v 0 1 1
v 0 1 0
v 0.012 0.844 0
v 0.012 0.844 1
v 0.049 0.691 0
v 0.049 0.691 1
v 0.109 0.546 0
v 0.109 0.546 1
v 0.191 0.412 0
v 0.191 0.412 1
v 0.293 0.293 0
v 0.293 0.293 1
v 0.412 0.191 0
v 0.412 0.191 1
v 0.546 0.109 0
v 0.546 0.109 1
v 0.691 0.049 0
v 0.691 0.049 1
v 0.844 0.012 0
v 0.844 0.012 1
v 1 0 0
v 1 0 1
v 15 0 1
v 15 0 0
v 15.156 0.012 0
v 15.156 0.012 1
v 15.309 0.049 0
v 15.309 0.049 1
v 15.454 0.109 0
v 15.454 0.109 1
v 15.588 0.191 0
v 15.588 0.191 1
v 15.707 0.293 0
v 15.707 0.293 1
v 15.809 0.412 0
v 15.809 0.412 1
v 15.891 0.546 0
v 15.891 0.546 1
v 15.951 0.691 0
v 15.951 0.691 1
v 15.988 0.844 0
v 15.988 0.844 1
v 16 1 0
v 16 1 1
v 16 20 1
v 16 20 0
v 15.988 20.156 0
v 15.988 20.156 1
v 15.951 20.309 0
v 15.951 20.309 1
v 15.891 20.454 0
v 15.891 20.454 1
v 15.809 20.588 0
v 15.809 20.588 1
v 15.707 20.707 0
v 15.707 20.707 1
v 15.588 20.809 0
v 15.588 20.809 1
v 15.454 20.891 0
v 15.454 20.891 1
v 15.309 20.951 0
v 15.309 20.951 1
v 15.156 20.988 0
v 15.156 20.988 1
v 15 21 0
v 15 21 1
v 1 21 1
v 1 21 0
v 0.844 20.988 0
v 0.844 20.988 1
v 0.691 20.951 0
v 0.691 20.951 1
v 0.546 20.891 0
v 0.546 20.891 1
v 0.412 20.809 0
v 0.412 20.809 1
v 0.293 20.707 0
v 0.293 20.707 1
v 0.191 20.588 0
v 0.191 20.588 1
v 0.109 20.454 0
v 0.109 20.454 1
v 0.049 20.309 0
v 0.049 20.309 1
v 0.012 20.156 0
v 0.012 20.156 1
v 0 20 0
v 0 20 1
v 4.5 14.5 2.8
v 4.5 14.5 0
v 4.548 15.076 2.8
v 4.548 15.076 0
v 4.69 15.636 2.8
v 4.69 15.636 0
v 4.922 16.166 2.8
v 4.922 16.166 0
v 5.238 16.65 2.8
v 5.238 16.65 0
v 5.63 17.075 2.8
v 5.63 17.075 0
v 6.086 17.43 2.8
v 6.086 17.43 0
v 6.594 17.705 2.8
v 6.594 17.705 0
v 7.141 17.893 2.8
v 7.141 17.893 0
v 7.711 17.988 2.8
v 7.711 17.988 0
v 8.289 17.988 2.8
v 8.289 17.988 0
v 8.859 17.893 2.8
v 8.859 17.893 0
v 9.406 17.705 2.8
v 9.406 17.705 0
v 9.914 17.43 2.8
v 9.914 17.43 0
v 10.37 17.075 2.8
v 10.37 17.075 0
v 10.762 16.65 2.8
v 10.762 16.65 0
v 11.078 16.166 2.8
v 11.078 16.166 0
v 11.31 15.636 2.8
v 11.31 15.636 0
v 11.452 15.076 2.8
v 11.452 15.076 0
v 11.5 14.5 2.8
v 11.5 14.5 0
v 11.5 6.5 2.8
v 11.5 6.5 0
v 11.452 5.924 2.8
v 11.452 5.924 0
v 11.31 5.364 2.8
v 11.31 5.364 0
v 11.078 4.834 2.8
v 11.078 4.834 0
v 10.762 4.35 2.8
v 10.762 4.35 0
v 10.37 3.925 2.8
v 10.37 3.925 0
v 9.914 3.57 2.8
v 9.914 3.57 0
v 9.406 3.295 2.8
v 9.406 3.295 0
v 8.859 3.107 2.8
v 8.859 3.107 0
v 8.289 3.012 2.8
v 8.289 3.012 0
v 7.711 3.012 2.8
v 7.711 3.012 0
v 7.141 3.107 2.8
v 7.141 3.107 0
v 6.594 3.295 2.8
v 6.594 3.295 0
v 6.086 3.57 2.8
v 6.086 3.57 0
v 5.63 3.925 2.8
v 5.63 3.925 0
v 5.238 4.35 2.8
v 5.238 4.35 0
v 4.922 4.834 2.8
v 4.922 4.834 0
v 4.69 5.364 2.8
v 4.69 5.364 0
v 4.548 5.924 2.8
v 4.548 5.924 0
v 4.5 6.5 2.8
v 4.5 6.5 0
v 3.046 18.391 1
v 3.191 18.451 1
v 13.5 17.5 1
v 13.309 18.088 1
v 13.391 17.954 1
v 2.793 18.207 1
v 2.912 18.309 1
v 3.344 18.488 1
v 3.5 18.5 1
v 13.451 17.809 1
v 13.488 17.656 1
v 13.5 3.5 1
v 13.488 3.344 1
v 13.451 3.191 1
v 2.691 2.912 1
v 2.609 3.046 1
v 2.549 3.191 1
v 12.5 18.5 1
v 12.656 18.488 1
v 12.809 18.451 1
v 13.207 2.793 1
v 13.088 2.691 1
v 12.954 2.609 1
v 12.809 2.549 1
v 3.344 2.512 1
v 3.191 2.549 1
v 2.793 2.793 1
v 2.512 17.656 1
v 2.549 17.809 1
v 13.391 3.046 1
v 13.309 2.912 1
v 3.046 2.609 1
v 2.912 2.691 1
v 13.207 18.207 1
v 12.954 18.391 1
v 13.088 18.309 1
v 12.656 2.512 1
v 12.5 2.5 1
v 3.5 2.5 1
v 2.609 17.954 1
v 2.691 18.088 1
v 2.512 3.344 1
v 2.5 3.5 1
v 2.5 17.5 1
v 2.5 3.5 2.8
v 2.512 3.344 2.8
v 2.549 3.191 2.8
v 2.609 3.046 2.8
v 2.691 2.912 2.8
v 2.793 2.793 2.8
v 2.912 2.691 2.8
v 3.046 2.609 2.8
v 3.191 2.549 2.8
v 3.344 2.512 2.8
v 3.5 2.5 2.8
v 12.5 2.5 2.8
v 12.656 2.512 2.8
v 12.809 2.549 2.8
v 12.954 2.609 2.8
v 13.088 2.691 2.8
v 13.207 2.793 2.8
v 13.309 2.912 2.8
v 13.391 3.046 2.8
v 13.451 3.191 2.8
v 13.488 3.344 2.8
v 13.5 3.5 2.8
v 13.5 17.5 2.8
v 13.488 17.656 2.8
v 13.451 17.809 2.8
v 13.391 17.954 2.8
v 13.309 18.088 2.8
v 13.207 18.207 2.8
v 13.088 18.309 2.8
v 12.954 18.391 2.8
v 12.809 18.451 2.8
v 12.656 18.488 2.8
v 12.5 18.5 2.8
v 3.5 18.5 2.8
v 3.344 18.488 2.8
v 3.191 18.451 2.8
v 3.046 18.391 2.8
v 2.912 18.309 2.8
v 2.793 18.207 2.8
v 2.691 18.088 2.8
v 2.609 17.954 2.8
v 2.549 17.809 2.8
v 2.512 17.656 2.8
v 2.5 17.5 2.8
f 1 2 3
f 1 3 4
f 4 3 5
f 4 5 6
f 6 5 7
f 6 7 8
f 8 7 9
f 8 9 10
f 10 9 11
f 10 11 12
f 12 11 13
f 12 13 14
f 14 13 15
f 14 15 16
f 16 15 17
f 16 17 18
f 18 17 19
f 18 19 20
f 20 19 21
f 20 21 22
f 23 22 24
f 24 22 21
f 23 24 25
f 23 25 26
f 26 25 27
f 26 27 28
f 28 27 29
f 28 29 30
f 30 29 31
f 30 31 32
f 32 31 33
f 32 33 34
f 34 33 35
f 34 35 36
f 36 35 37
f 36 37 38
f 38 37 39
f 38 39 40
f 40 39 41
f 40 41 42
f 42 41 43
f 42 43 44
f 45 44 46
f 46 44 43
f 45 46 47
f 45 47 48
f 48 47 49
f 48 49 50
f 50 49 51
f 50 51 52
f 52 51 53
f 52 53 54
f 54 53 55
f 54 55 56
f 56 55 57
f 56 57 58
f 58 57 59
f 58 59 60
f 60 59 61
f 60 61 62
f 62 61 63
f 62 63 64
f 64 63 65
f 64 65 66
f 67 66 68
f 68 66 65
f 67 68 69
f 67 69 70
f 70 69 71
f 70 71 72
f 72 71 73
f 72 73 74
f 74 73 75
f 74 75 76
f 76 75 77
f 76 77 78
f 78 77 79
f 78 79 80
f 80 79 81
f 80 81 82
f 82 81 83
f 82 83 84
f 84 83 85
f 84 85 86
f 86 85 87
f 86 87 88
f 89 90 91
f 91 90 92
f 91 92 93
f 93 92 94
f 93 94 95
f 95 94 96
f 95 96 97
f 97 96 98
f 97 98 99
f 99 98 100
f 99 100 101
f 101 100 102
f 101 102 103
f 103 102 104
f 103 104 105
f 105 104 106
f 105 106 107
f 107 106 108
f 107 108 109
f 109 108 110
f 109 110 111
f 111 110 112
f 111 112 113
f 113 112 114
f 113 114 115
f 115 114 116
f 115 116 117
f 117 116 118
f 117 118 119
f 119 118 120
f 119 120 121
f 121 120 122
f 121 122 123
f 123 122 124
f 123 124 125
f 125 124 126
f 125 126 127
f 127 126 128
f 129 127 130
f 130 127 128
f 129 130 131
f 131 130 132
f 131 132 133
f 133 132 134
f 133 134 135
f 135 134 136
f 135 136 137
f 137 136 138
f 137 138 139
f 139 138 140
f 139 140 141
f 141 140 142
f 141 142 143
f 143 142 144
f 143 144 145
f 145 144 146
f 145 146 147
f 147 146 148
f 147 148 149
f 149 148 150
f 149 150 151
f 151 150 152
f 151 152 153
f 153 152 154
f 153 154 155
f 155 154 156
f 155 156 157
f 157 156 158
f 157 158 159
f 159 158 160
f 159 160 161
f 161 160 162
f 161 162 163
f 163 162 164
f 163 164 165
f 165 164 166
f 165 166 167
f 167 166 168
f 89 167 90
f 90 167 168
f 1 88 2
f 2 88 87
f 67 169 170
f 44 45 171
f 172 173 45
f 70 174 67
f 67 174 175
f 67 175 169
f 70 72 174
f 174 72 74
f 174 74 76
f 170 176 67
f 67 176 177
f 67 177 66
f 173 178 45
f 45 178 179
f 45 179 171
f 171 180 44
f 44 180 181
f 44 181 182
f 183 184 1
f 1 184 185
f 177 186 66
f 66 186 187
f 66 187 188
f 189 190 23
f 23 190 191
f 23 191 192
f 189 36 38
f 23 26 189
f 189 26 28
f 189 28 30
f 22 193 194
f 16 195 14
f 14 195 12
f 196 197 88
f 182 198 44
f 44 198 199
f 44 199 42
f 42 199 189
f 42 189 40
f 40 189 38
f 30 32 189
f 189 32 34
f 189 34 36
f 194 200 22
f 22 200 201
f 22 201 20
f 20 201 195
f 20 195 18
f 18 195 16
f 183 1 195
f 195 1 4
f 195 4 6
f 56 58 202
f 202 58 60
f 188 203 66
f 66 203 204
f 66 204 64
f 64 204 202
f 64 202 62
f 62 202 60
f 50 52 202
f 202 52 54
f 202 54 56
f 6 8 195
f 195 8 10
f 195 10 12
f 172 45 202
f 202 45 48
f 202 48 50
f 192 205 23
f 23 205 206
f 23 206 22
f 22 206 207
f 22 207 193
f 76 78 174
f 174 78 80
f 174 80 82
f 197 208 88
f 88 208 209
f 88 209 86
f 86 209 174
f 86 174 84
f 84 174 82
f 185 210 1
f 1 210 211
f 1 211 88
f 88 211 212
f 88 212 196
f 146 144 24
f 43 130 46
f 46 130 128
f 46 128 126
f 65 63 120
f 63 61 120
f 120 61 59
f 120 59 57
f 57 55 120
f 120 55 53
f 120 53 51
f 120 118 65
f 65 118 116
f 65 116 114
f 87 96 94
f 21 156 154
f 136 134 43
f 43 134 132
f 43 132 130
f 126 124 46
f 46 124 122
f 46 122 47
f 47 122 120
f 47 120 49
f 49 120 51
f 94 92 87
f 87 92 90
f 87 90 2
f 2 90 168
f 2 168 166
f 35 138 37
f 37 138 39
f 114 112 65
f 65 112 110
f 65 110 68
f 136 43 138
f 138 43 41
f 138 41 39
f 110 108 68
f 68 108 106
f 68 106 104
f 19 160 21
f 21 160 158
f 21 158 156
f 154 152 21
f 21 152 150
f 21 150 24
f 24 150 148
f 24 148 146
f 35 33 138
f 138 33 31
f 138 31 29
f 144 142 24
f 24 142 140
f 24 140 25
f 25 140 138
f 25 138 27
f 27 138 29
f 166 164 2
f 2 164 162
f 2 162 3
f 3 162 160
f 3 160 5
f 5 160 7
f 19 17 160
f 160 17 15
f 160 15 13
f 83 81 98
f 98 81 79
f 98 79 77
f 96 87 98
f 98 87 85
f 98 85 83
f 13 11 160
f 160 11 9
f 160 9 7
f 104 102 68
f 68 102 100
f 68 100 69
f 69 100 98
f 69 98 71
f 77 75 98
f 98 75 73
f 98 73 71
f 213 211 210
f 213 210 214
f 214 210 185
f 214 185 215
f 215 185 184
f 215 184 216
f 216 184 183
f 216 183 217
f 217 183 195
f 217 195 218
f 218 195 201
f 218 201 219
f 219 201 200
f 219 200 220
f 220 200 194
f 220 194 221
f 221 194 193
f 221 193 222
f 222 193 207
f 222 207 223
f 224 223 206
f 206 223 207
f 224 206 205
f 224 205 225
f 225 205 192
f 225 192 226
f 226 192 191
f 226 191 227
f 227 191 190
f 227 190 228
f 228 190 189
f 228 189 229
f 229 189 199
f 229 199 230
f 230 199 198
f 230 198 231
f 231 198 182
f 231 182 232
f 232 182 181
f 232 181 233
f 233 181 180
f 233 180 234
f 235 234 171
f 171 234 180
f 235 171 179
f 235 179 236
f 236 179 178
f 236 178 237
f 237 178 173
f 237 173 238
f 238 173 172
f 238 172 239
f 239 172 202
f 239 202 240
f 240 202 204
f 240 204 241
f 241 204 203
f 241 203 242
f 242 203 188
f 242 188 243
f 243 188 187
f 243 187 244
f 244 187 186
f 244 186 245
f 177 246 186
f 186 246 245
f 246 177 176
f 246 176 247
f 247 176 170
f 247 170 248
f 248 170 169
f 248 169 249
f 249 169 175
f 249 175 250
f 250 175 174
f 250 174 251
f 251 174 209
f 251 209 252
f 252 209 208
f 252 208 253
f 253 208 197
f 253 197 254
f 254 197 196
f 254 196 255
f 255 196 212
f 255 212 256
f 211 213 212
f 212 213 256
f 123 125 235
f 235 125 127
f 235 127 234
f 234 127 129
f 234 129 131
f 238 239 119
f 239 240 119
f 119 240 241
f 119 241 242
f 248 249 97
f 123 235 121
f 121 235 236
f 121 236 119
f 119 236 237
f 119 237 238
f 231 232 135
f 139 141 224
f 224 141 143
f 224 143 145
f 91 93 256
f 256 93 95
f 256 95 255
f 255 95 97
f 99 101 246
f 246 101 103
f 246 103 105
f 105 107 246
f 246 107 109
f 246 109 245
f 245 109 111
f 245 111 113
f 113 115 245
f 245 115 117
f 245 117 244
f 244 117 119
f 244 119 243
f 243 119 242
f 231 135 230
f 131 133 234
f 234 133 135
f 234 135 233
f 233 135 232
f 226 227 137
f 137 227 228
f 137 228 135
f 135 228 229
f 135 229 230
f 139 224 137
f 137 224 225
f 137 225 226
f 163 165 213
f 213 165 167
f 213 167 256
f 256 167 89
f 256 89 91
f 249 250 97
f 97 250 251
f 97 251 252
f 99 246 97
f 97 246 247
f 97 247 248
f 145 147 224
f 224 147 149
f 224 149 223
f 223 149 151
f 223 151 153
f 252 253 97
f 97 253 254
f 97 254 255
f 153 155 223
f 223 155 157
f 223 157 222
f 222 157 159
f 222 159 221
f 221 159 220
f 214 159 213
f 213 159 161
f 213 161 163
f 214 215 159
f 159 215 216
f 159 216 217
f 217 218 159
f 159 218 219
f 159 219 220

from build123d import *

# Parameters (mm, degrees)
RESSALTO_EXTRUS_O1_DEPTH = 1
RESSALTO_EXTRUS_O3_DEPTH = 2.8


with BuildPart() as part:
    # Esboço1 → Ressalto-extrusão1 (new body)
    with BuildSketch(Plane.XY):
        with BuildLine():
            ThreePointArc((0, 1), (0.292893219, 0.292893219), (1, 0))
            Line((1, 0), (15, 0))
            ThreePointArc((15, 0), (15.707106781, 0.292893219), (16, 1))
            Line((16, 1), (16, 20))
            ThreePointArc((16, 20), (15.707106781, 20.707106781), (15, 21))
            Line((15, 21), (1, 21))
            ThreePointArc((1, 21), (0.292893219, 20.707106781), (0, 20))
            Line((0, 20), (0, 1))
        make_face()
        with BuildLine():
            ThreePointArc((11.5, 6.5), (8, 3), (4.5, 6.5))
            Line((4.5, 6.5), (4.5, 14.5))
            ThreePointArc((4.5, 14.5), (8, 18), (11.5, 14.5))
            Line((11.5, 14.5), (11.5, 6.5))
        make_face(mode=Mode.SUBTRACT)
    extrude(amount=RESSALTO_EXTRUS_O1_DEPTH)

    # Esboço1<4> → Ressalto-extrusão3 (add)
    with BuildSketch(Plane.XY):
        with BuildLine():
            ThreePointArc((2.5, 3.5), (2.792893219, 2.792893219), (3.5, 2.5))
            Line((3.5, 2.5), (12.5, 2.5))
            ThreePointArc((12.5, 2.5), (13.207106781, 2.792893219), (13.5, 3.5))
            Line((13.5, 3.5), (13.5, 17.5))
            ThreePointArc((13.5, 17.5), (13.207106781, 18.207106781), (12.5, 18.5))
            Line((12.5, 18.5), (3.5, 18.5))
            ThreePointArc((3.5, 18.5), (2.792893219, 18.207106781), (2.5, 17.5))
            Line((2.5, 17.5), (2.5, 3.5))
        make_face()
        with BuildLine():
            ThreePointArc((11.5, 6.5), (8, 3), (4.5, 6.5))
            Line((4.5, 6.5), (4.5, 14.5))
            ThreePointArc((4.5, 14.5), (8, 18), (11.5, 14.5))
            Line((11.5, 14.5), (11.5, 6.5))
        make_face(mode=Mode.SUBTRACT)
    extrude(amount=RESSALTO_EXTRUS_O3_DEPTH)


solid = part.part
